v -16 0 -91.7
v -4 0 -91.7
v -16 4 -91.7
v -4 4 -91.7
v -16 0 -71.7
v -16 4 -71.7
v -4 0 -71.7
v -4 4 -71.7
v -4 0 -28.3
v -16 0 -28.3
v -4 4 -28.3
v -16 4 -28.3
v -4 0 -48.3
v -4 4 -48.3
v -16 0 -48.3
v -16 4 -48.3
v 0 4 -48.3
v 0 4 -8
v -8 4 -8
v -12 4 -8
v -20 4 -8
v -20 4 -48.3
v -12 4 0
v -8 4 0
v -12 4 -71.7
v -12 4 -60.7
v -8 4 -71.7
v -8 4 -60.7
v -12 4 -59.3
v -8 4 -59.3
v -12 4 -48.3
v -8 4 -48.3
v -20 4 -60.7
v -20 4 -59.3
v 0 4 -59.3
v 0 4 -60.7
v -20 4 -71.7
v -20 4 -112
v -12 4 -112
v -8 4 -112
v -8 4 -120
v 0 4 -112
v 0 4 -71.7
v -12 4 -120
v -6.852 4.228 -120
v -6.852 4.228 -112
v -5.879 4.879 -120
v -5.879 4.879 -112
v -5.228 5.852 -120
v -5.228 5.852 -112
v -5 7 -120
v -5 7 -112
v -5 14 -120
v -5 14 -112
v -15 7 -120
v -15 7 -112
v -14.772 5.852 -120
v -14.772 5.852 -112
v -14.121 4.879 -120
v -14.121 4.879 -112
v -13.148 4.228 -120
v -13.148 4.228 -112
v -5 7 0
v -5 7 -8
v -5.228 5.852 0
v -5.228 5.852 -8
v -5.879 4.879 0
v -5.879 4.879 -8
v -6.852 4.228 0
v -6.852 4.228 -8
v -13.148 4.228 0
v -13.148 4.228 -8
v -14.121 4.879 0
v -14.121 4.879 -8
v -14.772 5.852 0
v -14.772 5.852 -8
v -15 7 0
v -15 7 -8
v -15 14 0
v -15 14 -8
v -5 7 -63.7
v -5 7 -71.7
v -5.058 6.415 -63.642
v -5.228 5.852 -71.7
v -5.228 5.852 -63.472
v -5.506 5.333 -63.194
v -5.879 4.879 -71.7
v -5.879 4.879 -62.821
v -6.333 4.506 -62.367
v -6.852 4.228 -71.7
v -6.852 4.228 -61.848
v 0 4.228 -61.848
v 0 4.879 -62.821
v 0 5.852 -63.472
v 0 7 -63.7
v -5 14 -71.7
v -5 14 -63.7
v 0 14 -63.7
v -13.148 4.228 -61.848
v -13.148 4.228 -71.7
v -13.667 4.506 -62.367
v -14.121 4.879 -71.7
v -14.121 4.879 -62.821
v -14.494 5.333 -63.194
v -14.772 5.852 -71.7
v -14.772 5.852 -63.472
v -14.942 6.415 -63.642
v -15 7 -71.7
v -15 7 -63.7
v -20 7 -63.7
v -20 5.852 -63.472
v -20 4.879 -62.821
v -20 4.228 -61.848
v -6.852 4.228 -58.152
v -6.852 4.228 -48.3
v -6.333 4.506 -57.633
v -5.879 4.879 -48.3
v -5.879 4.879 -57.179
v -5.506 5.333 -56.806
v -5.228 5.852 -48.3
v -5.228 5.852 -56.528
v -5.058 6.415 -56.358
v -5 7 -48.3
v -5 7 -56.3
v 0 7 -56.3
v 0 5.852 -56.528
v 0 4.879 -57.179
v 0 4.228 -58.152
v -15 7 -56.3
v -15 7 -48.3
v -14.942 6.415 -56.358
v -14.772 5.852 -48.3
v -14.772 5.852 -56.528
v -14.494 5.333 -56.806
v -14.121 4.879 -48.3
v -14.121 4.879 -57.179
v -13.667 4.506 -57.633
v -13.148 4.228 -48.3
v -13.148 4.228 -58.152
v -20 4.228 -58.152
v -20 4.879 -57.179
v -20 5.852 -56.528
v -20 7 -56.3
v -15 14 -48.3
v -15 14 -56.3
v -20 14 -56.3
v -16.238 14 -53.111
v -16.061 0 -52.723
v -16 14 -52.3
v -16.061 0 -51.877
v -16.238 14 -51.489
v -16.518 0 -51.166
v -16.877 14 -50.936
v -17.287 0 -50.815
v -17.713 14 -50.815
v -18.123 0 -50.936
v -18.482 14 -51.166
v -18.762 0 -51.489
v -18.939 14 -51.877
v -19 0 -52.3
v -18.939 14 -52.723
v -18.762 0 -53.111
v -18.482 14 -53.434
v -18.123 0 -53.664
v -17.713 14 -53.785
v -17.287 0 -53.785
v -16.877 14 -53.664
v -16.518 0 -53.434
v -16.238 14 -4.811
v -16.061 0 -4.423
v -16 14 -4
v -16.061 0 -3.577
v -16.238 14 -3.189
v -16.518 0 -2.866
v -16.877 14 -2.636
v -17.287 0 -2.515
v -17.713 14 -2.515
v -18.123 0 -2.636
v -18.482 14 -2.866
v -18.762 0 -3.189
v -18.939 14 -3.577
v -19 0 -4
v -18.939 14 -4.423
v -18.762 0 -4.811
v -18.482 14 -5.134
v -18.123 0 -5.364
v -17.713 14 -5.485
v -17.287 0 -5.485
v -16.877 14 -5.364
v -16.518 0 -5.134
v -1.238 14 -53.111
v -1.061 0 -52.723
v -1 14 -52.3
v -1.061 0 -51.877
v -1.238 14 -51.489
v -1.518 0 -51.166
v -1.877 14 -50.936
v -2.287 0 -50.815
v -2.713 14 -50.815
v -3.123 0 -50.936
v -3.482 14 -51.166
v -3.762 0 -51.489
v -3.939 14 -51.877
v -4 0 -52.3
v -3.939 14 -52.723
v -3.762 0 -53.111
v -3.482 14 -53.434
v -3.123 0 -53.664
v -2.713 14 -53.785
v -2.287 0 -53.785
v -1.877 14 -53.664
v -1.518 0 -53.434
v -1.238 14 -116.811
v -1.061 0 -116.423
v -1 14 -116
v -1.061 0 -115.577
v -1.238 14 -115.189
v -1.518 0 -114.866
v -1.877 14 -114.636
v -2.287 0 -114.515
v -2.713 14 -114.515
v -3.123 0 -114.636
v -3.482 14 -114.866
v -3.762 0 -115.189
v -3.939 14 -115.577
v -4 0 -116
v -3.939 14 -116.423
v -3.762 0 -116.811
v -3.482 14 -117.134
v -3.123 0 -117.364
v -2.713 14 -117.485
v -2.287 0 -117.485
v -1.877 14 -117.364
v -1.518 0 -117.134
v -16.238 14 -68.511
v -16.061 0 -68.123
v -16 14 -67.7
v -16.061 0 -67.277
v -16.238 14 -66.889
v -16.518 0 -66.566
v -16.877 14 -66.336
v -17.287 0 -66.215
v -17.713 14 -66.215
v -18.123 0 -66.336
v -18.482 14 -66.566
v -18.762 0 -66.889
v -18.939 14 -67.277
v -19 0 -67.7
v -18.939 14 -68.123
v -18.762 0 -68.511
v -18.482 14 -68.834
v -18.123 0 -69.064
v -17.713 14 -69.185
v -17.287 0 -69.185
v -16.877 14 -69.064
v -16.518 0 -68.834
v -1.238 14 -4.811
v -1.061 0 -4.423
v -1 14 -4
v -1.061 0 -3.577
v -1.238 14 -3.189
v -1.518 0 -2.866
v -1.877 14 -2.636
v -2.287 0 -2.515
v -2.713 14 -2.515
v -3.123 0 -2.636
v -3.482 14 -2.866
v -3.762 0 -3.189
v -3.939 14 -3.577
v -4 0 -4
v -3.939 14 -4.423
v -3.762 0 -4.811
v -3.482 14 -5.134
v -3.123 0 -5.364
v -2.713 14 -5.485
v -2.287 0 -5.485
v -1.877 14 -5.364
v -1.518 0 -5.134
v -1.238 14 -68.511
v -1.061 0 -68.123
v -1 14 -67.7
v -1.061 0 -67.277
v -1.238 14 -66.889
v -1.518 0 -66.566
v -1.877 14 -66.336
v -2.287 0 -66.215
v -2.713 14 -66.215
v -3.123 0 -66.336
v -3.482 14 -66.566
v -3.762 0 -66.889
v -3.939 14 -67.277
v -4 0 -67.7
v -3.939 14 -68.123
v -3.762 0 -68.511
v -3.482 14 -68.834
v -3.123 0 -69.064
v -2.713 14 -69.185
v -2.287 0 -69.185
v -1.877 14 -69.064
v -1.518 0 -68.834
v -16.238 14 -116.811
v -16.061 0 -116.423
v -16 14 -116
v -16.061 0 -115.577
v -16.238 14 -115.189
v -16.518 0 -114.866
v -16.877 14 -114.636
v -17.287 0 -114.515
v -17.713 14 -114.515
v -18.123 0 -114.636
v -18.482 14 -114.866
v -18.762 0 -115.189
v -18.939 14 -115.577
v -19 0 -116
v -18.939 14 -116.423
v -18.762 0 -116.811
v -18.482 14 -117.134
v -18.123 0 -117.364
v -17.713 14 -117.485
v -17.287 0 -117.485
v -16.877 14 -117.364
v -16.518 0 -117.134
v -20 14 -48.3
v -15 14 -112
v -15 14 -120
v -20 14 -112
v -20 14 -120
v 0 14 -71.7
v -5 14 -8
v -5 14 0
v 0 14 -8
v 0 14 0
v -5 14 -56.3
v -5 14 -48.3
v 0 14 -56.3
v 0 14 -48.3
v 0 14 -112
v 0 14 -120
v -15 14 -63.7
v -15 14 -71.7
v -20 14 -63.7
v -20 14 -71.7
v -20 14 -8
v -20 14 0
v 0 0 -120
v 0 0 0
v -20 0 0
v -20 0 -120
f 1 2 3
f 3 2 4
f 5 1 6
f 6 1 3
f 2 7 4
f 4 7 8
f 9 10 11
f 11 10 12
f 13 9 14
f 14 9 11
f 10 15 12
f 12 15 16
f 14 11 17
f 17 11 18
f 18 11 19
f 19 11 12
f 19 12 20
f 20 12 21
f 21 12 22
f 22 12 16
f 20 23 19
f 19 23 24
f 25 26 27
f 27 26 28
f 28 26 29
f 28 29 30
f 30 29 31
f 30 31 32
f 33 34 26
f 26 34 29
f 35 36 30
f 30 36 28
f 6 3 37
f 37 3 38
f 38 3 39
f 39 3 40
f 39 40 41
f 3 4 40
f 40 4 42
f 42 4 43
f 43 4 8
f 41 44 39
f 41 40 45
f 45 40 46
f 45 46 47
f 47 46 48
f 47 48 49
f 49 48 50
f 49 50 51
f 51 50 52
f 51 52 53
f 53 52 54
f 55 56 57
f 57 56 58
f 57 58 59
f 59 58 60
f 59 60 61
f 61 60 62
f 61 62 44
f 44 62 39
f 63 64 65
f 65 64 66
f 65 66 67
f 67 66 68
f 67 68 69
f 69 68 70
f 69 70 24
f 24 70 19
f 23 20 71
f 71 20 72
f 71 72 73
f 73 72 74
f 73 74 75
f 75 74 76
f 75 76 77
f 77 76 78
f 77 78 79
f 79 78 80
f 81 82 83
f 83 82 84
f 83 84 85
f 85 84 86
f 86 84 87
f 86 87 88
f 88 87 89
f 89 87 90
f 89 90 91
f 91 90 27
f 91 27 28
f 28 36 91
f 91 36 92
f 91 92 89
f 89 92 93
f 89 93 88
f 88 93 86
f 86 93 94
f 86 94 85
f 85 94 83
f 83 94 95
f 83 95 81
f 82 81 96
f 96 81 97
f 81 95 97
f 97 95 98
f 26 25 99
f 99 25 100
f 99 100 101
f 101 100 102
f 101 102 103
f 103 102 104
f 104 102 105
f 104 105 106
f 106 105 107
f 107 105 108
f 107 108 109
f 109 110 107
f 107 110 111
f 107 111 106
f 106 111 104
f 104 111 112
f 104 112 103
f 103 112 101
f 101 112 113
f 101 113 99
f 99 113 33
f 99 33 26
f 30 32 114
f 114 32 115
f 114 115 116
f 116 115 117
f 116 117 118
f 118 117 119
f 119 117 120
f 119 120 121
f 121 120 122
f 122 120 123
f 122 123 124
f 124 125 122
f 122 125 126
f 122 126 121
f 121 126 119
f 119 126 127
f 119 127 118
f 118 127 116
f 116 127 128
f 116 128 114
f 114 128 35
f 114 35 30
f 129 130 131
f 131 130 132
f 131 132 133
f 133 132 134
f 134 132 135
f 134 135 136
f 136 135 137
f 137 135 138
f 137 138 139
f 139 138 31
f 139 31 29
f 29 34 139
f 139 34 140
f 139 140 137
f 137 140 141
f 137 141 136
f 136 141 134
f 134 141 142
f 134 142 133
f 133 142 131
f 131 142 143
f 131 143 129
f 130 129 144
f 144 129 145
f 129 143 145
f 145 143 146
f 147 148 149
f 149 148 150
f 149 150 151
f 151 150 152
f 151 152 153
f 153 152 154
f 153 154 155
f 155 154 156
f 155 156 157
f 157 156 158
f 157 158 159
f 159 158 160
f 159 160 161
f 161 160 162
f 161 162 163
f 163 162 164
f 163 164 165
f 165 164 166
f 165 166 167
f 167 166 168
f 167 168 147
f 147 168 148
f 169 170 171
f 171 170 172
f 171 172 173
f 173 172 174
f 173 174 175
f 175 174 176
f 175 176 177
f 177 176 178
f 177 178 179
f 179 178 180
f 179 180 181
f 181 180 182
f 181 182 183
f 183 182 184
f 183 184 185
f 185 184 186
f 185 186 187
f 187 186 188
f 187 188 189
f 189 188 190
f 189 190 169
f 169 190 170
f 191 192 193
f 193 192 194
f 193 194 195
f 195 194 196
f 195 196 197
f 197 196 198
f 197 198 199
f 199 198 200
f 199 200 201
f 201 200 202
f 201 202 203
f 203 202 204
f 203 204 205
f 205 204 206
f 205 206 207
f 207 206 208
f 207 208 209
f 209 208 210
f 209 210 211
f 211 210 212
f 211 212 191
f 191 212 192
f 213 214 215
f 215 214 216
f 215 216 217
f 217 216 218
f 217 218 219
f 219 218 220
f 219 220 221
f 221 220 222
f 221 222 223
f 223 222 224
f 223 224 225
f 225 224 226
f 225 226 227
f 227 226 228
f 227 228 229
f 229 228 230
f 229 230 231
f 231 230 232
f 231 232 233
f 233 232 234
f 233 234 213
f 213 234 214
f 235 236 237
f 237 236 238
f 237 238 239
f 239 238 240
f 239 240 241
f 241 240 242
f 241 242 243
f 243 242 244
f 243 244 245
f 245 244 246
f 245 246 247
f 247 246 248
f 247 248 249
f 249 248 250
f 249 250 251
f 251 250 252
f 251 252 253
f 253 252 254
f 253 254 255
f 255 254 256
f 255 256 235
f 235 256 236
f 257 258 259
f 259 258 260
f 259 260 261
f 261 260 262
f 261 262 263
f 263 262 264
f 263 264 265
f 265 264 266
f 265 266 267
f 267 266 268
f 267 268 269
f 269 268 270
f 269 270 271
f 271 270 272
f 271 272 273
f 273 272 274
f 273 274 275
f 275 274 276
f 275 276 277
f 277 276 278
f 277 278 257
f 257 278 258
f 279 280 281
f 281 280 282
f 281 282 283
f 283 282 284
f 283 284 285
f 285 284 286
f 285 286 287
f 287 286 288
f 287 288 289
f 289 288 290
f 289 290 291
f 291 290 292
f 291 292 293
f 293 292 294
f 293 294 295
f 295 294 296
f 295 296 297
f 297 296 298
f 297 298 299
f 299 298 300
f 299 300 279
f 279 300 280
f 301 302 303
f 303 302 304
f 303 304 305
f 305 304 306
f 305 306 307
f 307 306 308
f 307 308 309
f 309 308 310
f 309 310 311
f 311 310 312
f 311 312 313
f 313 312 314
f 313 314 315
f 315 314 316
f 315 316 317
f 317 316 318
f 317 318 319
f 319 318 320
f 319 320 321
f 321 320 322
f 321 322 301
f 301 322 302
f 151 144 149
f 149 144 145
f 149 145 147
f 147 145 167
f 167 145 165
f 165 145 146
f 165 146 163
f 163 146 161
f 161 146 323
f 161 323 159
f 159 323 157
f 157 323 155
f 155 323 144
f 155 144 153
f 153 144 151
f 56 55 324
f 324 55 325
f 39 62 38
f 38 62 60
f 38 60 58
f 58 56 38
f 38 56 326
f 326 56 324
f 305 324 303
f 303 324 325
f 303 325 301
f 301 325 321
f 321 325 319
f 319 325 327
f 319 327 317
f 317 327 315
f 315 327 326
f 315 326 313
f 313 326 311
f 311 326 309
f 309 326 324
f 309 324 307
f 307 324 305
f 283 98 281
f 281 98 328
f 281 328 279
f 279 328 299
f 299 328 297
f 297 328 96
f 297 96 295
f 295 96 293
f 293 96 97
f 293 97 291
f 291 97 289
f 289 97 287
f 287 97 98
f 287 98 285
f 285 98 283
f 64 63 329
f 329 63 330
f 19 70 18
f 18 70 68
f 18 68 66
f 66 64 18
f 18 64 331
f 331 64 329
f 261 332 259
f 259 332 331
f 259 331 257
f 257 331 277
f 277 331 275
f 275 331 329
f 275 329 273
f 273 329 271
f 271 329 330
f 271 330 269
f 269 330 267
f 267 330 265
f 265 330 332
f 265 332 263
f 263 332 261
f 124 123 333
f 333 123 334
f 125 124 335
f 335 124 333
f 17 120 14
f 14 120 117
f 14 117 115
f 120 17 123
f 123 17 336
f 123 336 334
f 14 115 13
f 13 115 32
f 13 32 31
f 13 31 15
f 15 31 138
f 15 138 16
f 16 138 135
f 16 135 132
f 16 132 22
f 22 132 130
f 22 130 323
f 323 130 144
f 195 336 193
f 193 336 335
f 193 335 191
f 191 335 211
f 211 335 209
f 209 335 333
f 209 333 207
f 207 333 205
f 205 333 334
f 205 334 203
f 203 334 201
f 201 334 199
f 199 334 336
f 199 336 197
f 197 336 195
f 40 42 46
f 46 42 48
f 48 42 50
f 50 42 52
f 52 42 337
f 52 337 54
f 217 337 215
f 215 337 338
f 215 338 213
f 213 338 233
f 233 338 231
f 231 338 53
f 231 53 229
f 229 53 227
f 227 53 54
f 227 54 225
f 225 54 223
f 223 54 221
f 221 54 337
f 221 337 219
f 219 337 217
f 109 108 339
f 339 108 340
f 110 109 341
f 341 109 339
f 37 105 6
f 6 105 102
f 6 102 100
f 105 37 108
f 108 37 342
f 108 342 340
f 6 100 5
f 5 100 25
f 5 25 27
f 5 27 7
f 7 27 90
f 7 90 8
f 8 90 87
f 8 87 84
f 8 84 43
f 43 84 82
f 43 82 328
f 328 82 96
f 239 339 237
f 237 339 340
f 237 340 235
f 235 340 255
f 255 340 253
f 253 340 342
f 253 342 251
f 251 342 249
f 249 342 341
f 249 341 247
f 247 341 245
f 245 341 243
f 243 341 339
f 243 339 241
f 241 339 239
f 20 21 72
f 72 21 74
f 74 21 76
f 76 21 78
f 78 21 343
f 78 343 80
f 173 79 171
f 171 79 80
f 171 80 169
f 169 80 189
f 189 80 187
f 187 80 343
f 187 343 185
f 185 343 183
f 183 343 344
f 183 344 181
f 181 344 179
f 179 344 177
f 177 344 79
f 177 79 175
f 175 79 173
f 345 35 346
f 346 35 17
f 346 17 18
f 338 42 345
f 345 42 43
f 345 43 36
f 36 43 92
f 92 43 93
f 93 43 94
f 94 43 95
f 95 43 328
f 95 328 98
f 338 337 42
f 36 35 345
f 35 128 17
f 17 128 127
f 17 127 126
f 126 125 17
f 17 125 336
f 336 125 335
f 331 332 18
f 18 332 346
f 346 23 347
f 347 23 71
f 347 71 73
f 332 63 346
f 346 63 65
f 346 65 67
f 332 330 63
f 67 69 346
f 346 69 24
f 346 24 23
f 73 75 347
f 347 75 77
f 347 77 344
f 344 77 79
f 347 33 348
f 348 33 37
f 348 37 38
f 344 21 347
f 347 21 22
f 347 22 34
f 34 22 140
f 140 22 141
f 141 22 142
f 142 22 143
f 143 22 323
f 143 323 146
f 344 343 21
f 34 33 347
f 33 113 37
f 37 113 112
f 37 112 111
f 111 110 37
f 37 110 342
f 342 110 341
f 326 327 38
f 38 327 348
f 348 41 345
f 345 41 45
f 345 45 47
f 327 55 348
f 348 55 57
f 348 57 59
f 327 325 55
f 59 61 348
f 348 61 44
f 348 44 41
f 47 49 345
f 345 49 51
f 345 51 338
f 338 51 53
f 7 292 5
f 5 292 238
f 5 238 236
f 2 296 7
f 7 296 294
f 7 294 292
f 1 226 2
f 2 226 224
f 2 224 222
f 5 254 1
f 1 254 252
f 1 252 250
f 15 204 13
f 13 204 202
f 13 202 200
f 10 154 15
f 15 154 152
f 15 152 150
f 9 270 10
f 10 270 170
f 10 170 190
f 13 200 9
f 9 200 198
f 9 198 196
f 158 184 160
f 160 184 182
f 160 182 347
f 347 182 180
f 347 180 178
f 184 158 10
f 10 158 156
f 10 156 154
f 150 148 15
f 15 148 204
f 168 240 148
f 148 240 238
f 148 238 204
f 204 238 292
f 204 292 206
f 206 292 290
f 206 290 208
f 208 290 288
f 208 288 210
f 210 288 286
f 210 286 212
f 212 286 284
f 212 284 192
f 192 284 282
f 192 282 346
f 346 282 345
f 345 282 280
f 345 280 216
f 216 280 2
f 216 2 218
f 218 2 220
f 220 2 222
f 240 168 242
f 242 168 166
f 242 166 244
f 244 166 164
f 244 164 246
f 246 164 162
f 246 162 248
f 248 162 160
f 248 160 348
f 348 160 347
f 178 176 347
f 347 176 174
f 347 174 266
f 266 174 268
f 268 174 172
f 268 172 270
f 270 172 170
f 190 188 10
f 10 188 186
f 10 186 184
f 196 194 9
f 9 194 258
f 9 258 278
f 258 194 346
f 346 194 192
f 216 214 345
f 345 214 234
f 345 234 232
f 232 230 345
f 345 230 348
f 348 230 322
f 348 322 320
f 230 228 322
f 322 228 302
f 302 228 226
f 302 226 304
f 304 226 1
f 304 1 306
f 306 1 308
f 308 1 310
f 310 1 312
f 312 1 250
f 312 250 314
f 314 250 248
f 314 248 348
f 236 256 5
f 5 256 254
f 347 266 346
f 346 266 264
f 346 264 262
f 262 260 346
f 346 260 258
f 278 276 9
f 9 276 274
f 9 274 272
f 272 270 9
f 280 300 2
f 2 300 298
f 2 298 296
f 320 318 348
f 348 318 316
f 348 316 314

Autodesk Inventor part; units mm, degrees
ref_plane "YZ Plane" through (0, 0, 0) normal (1, 0, 0) x (0, 1, 0)
ref_plane "XZ Plane" through (0, 0, 0) normal (0, 1, 0) x (-1, 0, 0)
ref_plane "XY Plane" through (0, 0, 0) normal (0, 0, 1) x (1, 0, 0)
sketch "Sketch1" plane through (0, 0, 0) normal (0, 1, 0) x (-1, 0, 0)
  line L0 (0, 0) -> (20, 0)
  line L1 (20, 0) -> (20, -120)
  line L2 (20, -120) -> (0, -120)
  line L3 (0, -120) -> (0, 0)
  dimension "d0" = 20
  dimension "d1" = 120
extrude "Extrusion1" add sketch "Sketch1" along normal blind 4
sketch "Sketch2" plane through (0, 4, 0) normal (0, 1, 0) x (1, 0, 0)
  line L0 (-20, 0) -> (0, 0) projected
  line L1 (0, 0) -> (0, 120) projected
  line L2 (-20, 0) -> (0, 0)
  line L3 (0, 0) -> (0, 8)
  line L4 (0, 8) -> (-20, 8)
  line L5 (-20, 8) -> (-20, 0)
  line L6 (-20, 8) -> (0, 8)
  line L7 (0, 8) -> (0, 48.3)
  line L8 (0, 48.3) -> (-20, 48.3)
  line L9 (-20, 48.3) -> (-20, 8)
  line L10 (-20, 48.3) -> (0, 48.3)
  line L11 (0, 48.3) -> (0, 56.3)
  line L12 (0, 56.3) -> (-20, 56.3)
  line L13 (-20, 56.3) -> (-20, 48.3)
  line L14 (-20, 120) -> (-20, 0) projected
  line L15 (-20, 120) -> (0, 120)
  line L16 (0, 120) -> (0, 112)
  line L17 (0, 112) -> (-20, 112)
  line L18 (-20, 112) -> (-20, 120)
  line L19 (-20, 112) -> (0, 112)
  line L20 (0, 112) -> (0, 71.7)
  line L21 (0, 71.7) -> (-20, 71.7)
  line L22 (-20, 71.7) -> (-20, 112)
  line L23 (-20, 71.7) -> (0, 71.7)
  line L24 (0, 71.7) -> (0, 63.7)
  line L25 (0, 63.7) -> (-20, 63.7)
  line L26 (-20, 63.7) -> (-20, 71.7)
  line L27 (-20, 0) -> (-15, 0)
  line L28 (-15, 0) -> (-15, 8)
  line L29 (-15, 8) -> (-20, 8)
  line L30 (-20, 8) -> (-20, 0)
  line L31 (0, 8) -> (-5, 8)
  line L32 (-5, 8) -> (-5, 0)
  line L33 (-5, 0) -> (0, 0)
  line L34 (0, 0) -> (0, 8)
  line L35 (-20, 48.3) -> (-15, 48.3)
  line L36 (-15, 48.3) -> (-15, 56.3)
  line L37 (-15, 56.3) -> (-20, 56.3)
  line L38 (-20, 56.3) -> (-20, 48.3)
  line L39 (0, 48.3) -> (-5, 48.3)
  line L40 (-5, 48.3) -> (-5, 56.3)
  line L41 (-5, 56.3) -> (0, 56.3)
  line L42 (0, 56.3) -> (0, 48.3)
  line L43 (-20, 63.7) -> (-15, 63.7)
  line L44 (-15, 63.7) -> (-15, 71.7)
  line L45 (-15, 71.7) -> (-20, 71.7)
  line L46 (-20, 71.7) -> (-20, 63.7)
  line L47 (0, 63.7) -> (-5, 63.7)
  line L48 (-5, 63.7) -> (-5, 71.7)
  line L49 (-5, 71.7) -> (0, 71.7)
  line L50 (0, 71.7) -> (0, 63.7)
  line L51 (-20, 112) -> (-15, 112)
  line L52 (-15, 112) -> (-15, 120)
  line L53 (-15, 120) -> (-20, 120)
  line L54 (-20, 120) -> (-20, 112)
  line L55 (0, 112) -> (-5, 112)
  line L56 (-5, 112) -> (-5, 120)
  line L57 (-5, 120) -> (0, 120)
  line L58 (0, 120) -> (0, 112)
  dimension "d4" = 8
  dimension "d5" = 40.3
  dimension "d6" = 8
  dimension "d7" = 20
  dimension "d8" = 8
  dimension "d9" = 40.3
  dimension "d10" = 8
  dimension "d11" = 5
  dimension "d12" = 5
  dimension "d13" = 8
  dimension "d14" = 5
  dimension "d15" = 5
  dimension "d16" = 5
  dimension "d17" = 5
  dimension "d18" = 5
  dimension "d19" = 5
extrude "Extrusion2" add sketch "Sketch2" along normal blind 10 contours L5 L4 L28 L0 | L32 L4 L1 L0 | L13 L12 L36 L8 | L40 L12 L1 L8 | L14 L21 L44 L25 | L14 L15 L52 L17 | L48 L21 L1 L25 | L56 L15 L1 L17
sketch "Sketch3" plane through (0, 14, 0) normal (0, 1, 0) x (1, 0, 0)
  line L0 (-20, 120) -> (-20, 0) projected
  line L1 (-20, 0) -> (-17.5, 0)
  line L2 (-17.5, 0) -> (-17.5, 4)
  line L3 (-17.5, 4) -> (-20, 4)
  line L4 (-20, 4) -> (-20, 0)
  line L5 (0, 0) -> (0, 120) projected
  line L6 (0, 0) -> (-2.5, 0)
  line L7 (-2.5, 0) -> (-2.5, 4)
  line L8 (-2.5, 4) -> (0, 4)
  line L9 (0, 4) -> (0, 0)
  line L10 (-15, 56.3) -> (-20, 56.3) projected
  line L11 (-20, 56.3) -> (-17.5, 56.3)
  line L12 (-17.5, 56.3) -> (-17.5, 52.3)
  line L13 (-17.5, 52.3) -> (-20, 52.3)
  line L14 (-20, 52.3) -> (-20, 56.3)
  line L15 (-5, 56.3) -> (0, 56.3) projected
  line L16 (-5, 56.3) -> (-2.5, 56.3)
  line L17 (-2.5, 56.3) -> (-2.5, 52.3)
  line L18 (-2.5, 52.3) -> (-5, 52.3)
  line L19 (-5, 52.3) -> (-5, 56.3)
  line L20 (-20, 120) -> (-17.5, 120)
  line L21 (-17.5, 120) -> (-17.5, 116)
  line L22 (-17.5, 116) -> (-20, 116)
  line L23 (-20, 116) -> (-20, 120)
  line L24 (-5, 120) -> (-2.5, 120)
  line L25 (-2.5, 120) -> (-2.5, 116)
  line L26 (-2.5, 116) -> (-5, 116)
  line L27 (-5, 116) -> (-5, 120)
  line L28 (-20, 71.7) -> (-15, 71.7) projected
  line L29 (-15, 71.7) -> (-17.5, 71.7)
  line L30 (-17.5, 71.7) -> (-17.5, 67.7)
  line L31 (-17.5, 67.7) -> (-15, 67.7)
  line L32 (-15, 67.7) -> (-15, 71.7)
  line L33 (-5, 71.7) -> (-2.5, 71.7)
  line L34 (-2.5, 71.7) -> (-2.5, 67.7)
  line L35 (-2.5, 67.7) -> (-5, 67.7)
  line L36 (-5, 67.7) -> (-5, 71.7)
  circle A0 centre (-17.5, 67.7) radius 1.5
  circle A1 centre (-2.5, 67.7) radius 1.5
  circle A2 centre (-17.5, 116) radius 1.5
  circle A3 centre (-2.5, 116) radius 1.5
  circle A4 centre (-17.5, 52.3) radius 1.5
  circle A5 centre (-2.5, 52.3) radius 1.5
  circle A6 centre (-17.5, 4) radius 1.5
  circle A7 centre (-2.5, 4) radius 1.5
  dimension "d22" = 2.5
  dimension "d23" = 4
  dimension "d24" = 2.5
  dimension "d25" = 4
  dimension "d26" = 2.5
  dimension "d27" = 4
  dimension "d28" = 2.5
  dimension "d29" = 4
  dimension "d30" = 2.5
  dimension "d31" = 4
  dimension "d32" = 2.5
  dimension "d33" = 4
  dimension "d34" = 2.5
  dimension "d35" = 4
  dimension "d36" = 2.5
  dimension "d37" = 4
  dimension "d38" = 3
  dimension "d39" = 3
  dimension "d40" = 3
  dimension "d41" = 3
  dimension "d42" = 3
  dimension "d43" = 3
  dimension "d44" = 3
  dimension "d45" = 3
extrude "Extrusion3" cut sketch "Sketch3" against normal up to surface (14 mm away) contours A2 L21 L22 | L22 L21 A2 | A0 L31 L30 | L30 L31 A0 | A4 L12 L13 | L13 L12 A4 | A6 L2 L3 | L3 L2 A6 | A7 L7 L8 | L8 L7 A7 | A5 L18 L17 | L17 L18 A5 | A3 L26 L25 | L25 L26 A3 | A1 L35 L34 | L34 L35 A1
fillet "Fillet1" radius 3 12 edges at (-15, 4, -52.3) (-5, 4, -52.3) (-15, 4, -67.7) (-17.5, 4, -63.7) (-17.5, 4, -56.3) (-2.5, 4, -63.7) (-2.5, 4, -56.3) (-5, 4, -67.7) (-15, 4, -4) (-5, 4, -4) (-15, 4, -116) (-5, 4, -116)
sketch "Sketch5" plane through (0, 4, 0) normal (0, 1, 0) x (1, 0, 0)
  line L0 (0, 48.3) -> (-8, 48.3) projected
  line L1 (0, 48.3) -> (-4, 48.3)
  line L2 (-8, 71.7) -> (0, 71.7) projected
  line L3 (0, 71.7) -> (-4, 71.7)
  line L4 (-4, 71.7) -> (-16, 71.7)
  line L5 (-16, 71.7) -> (-16, 91.7)
  line L6 (-16, 91.7) -> (-4, 91.7)
  line L7 (-4, 91.7) -> (-4, 71.7)
  line L8 (-4, 48.3) -> (-16, 48.3)
  line L9 (-16, 48.3) -> (-16, 28.3)
  line L10 (-16, 28.3) -> (-4, 28.3)
  line L11 (-4, 28.3) -> (-4, 48.3)
  point P0 (0, 0)
  dimension "d63" = 4
  dimension "d64" = 4
  dimension "d65" = 12
  dimension "d66" = 20
  dimension "d67" = 12
  dimension "d68" = 20
extrude "Extrusion5" cut sketch "Sketch5" against normal blind 8
sketch "Sketch6" plane through (0, 0, 0) normal (0, -1, 0) x (1, 0, 0)
  circle A0 centre (-2.5, -4) radius 1.5 projected
  circle A1 centre (-2.5, -4) radius 4
  circle A2 centre (-17.5, -4) radius 1.5 projected
  circle A3 centre (-17.5, -4) radius 4
  circle A4 centre (-17.5, -52.3) radius 1.5 projected
  circle A5 centre (-17.5, -52.3) radius 4
  circle A6 centre (-2.5, -52.3) radius 1.5 projected
  circle A7 centre (-2.5, -52.3) radius 4
  circle A8 centre (-17.5, -67.7) radius 1.5 projected
  circle A9 centre (-17.5, -67.7) radius 4
  circle A10 centre (-2.5, -67.7) radius 1.5 projected
  circle A11 centre (-2.5, -67.7) radius 4
  circle A12 centre (-17.5, -116) radius 1.5 projected
  circle A13 centre (-17.5, -116) radius 4
  circle A14 centre (-2.5, -116) radius 1.5 projected
  circle A15 centre (-2.5, -116) radius 4
  line L0 (0, -120) -> (-20, -120) projected
  line L1 (-20, -120) -> (-17.5, -120)
  line L2 (-17.5, -120) -> (-17.5, -116)
  line L3 (-17.5, -116) -> (-20, -116)
  line L4 (-20, -116) -> (-20, -120)
  line L5 (0, -120) -> (-2.5, -120)
  line L6 (-2.5, -120) -> (-2.5, -116)
  line L7 (-2.5, -116) -> (0, -116)
  line L8 (0, -116) -> (0, -120)
  line L9 (-20, -120) -> (-20, 0) projected
  line L10 (-20, 0) -> (-17.5, 0)
  line L11 (-17.5, 0) -> (-17.5, -4)
  line L12 (-17.5, -4) -> (-20, -4)
  line L13 (-20, -4) -> (-20, 0)
  line L14 (0, 0) -> (-2.5, 0)
  line L15 (-2.5, 0) -> (-2.5, -4)
  line L16 (-2.5, -4) -> (0, -4)
  line L17 (0, -4) -> (0, 0)
  dimension "d71" = 8
  dimension "d72" = 8
  dimension "d73" = 8
  dimension "d74" = 8
  dimension "d75" = 8
  dimension "d76" = 8
  dimension "d77" = 8
properties part number "support_2_servos"
